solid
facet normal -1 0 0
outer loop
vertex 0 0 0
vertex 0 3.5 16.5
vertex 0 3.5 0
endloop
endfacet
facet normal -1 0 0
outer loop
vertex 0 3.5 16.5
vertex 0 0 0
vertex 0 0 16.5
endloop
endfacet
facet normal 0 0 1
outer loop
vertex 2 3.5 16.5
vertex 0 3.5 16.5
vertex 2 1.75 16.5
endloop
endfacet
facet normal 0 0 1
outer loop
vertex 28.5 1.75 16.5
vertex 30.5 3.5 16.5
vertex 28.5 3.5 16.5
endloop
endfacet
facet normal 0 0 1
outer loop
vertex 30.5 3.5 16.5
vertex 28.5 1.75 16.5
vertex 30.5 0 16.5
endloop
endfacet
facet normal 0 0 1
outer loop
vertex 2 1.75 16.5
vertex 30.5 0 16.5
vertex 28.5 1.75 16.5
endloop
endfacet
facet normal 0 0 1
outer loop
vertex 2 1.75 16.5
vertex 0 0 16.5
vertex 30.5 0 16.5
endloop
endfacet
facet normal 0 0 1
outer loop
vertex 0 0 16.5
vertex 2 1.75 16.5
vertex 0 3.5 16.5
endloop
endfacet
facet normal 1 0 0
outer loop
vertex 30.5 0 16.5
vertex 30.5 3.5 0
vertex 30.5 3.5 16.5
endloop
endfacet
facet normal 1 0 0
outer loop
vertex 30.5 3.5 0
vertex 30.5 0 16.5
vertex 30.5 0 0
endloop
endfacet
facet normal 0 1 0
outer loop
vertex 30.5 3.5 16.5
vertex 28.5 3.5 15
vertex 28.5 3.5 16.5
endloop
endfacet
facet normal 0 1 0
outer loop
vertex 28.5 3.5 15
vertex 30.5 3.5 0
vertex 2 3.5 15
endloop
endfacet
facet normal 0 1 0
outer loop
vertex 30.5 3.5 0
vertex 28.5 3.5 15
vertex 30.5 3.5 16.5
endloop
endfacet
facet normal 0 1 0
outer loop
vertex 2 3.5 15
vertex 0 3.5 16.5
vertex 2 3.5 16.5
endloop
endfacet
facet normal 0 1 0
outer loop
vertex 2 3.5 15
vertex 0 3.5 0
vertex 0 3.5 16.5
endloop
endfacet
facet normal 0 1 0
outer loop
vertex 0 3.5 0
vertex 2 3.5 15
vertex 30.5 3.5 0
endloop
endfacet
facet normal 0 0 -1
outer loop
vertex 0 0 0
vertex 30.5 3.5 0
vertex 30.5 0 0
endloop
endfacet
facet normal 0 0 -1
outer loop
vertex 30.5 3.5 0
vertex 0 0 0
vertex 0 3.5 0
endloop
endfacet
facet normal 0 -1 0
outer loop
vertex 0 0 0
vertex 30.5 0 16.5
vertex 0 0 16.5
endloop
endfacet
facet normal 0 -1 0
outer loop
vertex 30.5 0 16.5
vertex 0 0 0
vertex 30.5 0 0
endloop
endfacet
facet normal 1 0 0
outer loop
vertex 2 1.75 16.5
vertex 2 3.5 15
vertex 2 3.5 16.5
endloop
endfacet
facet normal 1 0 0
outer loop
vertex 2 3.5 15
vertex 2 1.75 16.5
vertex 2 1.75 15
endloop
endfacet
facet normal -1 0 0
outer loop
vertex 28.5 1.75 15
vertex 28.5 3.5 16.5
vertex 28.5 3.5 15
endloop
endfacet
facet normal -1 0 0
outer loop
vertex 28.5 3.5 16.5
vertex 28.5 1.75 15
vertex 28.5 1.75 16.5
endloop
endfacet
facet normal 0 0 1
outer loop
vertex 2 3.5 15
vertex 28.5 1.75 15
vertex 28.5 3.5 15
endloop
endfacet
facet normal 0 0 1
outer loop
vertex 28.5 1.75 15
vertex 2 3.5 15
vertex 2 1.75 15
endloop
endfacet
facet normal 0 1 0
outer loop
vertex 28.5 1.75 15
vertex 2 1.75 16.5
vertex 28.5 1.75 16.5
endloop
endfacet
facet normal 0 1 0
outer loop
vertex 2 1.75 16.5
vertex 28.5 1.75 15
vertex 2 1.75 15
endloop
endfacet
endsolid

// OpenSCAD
/////////////////////////////////////////////////////////////////////////////////
// LED illuminator to hide the LED from the receiver diode. 
//
// Author:              Maximilian Stiefel
// Last modification:   22.06.2017
/////////////////////////////////////////////////////////////////////////////////

/////////////////////////////////////////////////////////////////////////////////
// Includes
/////////////////////////////////////////////////////////////////////////////////

/////////////////////////////////////////////////////////////////////////////////
// Vars
/////////////////////////////////////////////////////////////////////////////////
$fa = 0.5; // minimum facet angle is now 0.5
$fs = 0.5; // minimum facet size is now 0.5 mm

allowance = 0.5;

glass_slide_thickness = 1;
glass_slide_width = 26 + allowance;

holder_height = 15 + glass_slide_thickness + allowance;
holder_width = 26 + allowance + 4;
holder_depth = 3.5;

/////////////////////////////////////////////////////////////////////////////////
// Action
/////////////////////////////////////////////////////////////////////////////////
difference()
{
	cube([holder_width, holder_depth, holder_height]);
	translate([(holder_width - glass_slide_width)/2, holder_depth - 1.25 - allowance, holder_height - glass_slide_thickness - allowance])
	cube([glass_slide_width, holder_depth, 2]);
}
